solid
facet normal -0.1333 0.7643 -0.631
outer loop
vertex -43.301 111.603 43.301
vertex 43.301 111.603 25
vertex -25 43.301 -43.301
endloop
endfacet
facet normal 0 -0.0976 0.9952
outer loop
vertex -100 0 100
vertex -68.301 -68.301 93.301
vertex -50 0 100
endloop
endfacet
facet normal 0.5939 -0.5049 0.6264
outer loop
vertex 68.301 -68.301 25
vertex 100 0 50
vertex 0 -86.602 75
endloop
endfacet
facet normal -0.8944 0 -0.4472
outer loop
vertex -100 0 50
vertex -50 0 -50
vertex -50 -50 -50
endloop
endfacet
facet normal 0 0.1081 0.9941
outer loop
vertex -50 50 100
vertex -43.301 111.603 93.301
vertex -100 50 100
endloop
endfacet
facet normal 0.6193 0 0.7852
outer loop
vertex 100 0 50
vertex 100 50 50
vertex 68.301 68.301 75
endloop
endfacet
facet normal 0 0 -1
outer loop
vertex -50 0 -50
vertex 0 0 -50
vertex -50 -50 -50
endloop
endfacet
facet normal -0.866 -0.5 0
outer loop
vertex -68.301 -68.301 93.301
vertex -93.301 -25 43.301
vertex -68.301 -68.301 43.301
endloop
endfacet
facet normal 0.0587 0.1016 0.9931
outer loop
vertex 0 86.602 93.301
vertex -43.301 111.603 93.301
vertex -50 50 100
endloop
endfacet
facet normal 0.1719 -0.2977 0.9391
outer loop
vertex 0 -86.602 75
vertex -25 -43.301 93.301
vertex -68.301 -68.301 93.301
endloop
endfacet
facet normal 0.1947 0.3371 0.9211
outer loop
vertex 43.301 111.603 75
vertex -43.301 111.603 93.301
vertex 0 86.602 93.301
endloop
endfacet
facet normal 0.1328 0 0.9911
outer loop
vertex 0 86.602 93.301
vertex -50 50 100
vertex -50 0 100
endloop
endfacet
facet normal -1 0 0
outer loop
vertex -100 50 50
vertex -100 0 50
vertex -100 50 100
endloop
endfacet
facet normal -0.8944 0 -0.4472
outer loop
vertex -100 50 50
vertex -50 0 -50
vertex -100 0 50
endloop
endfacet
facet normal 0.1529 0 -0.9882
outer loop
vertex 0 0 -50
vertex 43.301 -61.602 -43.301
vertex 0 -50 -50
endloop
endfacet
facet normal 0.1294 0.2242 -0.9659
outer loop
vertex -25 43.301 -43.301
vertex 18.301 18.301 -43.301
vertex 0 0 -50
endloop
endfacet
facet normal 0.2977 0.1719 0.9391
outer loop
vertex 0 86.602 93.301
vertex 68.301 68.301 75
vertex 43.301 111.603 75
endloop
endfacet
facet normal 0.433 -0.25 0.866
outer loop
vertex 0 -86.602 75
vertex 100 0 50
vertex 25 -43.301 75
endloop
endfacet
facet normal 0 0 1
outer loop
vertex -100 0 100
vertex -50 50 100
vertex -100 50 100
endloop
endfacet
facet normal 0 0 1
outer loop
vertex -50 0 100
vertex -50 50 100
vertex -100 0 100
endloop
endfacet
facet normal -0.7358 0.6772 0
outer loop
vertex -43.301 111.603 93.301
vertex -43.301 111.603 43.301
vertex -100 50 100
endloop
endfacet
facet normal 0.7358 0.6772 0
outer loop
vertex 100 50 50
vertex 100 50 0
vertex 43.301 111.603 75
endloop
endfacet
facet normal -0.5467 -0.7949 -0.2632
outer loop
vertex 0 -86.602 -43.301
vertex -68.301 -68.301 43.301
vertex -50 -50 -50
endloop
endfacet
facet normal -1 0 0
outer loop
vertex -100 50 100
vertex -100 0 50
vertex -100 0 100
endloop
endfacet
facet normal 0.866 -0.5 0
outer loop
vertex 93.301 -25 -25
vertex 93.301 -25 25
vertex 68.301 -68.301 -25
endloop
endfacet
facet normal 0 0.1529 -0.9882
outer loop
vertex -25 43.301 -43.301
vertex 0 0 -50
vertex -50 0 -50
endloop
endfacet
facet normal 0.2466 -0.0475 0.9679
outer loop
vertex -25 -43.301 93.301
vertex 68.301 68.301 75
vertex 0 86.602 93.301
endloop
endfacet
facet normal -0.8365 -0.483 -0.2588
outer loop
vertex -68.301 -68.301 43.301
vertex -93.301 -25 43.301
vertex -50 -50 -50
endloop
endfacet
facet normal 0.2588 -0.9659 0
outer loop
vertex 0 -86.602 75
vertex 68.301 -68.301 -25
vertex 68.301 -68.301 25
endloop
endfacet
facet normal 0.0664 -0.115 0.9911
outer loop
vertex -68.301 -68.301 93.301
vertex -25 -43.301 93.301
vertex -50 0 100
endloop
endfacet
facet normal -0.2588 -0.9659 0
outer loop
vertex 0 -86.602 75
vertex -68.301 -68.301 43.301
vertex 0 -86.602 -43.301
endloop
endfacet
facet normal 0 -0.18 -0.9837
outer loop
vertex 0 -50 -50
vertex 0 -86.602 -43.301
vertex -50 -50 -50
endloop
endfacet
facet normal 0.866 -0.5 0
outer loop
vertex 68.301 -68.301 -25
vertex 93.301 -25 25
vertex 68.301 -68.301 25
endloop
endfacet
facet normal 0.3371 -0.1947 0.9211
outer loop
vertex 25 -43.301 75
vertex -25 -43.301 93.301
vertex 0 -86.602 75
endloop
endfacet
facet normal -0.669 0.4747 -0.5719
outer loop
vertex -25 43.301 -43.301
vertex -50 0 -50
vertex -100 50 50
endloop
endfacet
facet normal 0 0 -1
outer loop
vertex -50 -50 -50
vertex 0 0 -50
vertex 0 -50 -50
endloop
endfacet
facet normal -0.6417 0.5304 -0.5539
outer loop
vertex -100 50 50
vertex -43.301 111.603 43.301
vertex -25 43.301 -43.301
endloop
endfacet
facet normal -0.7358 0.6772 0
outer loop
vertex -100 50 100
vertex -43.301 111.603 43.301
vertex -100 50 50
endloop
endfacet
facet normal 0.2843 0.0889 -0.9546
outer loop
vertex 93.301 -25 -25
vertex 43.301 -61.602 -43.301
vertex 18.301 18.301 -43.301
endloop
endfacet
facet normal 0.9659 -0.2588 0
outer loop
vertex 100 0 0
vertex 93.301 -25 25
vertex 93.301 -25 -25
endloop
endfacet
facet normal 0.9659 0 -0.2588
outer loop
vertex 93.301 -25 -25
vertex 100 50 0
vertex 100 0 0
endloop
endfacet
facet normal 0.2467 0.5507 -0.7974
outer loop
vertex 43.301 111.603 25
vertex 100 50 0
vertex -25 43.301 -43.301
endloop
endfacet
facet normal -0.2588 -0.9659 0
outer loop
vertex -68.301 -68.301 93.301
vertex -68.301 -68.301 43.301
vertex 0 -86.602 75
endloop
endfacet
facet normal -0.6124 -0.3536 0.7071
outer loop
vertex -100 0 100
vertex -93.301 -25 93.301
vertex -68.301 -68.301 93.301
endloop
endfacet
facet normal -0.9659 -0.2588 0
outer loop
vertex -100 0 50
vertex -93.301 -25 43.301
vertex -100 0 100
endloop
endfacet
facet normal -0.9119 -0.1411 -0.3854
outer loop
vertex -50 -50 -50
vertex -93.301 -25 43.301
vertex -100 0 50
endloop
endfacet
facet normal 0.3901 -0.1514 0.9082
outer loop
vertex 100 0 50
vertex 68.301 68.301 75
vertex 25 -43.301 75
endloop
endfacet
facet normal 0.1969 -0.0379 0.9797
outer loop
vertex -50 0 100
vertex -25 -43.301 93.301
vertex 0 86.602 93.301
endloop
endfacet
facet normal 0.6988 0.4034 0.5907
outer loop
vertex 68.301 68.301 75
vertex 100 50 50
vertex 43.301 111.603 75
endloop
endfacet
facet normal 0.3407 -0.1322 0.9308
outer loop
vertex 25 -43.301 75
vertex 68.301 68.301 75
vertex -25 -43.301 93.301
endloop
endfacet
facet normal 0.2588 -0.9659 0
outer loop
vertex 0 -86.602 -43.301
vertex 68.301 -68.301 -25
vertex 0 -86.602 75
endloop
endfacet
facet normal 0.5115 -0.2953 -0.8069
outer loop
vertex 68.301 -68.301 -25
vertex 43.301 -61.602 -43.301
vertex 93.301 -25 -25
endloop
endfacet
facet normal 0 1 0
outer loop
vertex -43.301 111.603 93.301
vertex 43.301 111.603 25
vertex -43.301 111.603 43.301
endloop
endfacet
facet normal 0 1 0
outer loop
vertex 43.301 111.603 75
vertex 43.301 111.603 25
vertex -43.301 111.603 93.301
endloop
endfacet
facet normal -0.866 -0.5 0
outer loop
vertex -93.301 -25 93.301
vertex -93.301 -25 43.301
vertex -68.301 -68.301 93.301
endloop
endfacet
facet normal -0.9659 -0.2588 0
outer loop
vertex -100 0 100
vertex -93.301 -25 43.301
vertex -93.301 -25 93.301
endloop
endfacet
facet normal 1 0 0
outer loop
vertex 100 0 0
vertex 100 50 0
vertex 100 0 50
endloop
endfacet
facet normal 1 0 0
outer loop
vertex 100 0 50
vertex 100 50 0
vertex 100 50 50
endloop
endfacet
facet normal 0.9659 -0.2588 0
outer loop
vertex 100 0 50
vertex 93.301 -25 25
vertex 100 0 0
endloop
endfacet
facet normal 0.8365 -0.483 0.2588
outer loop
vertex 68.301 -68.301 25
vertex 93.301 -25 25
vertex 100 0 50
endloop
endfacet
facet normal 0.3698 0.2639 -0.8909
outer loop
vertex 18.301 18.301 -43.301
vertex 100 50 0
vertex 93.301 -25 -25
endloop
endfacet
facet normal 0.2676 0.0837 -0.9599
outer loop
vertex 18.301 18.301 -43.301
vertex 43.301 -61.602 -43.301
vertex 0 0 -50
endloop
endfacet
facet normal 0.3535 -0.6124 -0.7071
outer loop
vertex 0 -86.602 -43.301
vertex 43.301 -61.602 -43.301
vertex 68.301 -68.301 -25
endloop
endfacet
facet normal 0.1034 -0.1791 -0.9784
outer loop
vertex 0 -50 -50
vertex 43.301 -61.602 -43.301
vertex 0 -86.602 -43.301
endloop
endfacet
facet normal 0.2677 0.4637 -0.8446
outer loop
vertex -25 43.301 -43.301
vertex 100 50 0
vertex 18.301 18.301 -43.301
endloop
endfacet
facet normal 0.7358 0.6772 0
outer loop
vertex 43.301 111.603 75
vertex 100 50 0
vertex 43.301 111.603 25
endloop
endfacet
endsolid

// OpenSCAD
module undulating_shape(width, height, depth, pitch, angle, segments) {
  
  // Parameters
  width = width;
  height = height;
  depth = depth;
  pitch = pitch;
  angle = angle;
  segments = segments;

  hull() {
    for (i = [0:segments]) {
      rotate([0, 0, i * angle]) {
        translate([width * cos(i * angle), width * sin(i * angle), depth * sin(i * angle)]) {
          cube([width, height, depth]);
        }
      }
    }
  }
}

undulating_shape(width = 50, height = 50, depth = 50, pitch = 5, angle = 30, segments = 100);
